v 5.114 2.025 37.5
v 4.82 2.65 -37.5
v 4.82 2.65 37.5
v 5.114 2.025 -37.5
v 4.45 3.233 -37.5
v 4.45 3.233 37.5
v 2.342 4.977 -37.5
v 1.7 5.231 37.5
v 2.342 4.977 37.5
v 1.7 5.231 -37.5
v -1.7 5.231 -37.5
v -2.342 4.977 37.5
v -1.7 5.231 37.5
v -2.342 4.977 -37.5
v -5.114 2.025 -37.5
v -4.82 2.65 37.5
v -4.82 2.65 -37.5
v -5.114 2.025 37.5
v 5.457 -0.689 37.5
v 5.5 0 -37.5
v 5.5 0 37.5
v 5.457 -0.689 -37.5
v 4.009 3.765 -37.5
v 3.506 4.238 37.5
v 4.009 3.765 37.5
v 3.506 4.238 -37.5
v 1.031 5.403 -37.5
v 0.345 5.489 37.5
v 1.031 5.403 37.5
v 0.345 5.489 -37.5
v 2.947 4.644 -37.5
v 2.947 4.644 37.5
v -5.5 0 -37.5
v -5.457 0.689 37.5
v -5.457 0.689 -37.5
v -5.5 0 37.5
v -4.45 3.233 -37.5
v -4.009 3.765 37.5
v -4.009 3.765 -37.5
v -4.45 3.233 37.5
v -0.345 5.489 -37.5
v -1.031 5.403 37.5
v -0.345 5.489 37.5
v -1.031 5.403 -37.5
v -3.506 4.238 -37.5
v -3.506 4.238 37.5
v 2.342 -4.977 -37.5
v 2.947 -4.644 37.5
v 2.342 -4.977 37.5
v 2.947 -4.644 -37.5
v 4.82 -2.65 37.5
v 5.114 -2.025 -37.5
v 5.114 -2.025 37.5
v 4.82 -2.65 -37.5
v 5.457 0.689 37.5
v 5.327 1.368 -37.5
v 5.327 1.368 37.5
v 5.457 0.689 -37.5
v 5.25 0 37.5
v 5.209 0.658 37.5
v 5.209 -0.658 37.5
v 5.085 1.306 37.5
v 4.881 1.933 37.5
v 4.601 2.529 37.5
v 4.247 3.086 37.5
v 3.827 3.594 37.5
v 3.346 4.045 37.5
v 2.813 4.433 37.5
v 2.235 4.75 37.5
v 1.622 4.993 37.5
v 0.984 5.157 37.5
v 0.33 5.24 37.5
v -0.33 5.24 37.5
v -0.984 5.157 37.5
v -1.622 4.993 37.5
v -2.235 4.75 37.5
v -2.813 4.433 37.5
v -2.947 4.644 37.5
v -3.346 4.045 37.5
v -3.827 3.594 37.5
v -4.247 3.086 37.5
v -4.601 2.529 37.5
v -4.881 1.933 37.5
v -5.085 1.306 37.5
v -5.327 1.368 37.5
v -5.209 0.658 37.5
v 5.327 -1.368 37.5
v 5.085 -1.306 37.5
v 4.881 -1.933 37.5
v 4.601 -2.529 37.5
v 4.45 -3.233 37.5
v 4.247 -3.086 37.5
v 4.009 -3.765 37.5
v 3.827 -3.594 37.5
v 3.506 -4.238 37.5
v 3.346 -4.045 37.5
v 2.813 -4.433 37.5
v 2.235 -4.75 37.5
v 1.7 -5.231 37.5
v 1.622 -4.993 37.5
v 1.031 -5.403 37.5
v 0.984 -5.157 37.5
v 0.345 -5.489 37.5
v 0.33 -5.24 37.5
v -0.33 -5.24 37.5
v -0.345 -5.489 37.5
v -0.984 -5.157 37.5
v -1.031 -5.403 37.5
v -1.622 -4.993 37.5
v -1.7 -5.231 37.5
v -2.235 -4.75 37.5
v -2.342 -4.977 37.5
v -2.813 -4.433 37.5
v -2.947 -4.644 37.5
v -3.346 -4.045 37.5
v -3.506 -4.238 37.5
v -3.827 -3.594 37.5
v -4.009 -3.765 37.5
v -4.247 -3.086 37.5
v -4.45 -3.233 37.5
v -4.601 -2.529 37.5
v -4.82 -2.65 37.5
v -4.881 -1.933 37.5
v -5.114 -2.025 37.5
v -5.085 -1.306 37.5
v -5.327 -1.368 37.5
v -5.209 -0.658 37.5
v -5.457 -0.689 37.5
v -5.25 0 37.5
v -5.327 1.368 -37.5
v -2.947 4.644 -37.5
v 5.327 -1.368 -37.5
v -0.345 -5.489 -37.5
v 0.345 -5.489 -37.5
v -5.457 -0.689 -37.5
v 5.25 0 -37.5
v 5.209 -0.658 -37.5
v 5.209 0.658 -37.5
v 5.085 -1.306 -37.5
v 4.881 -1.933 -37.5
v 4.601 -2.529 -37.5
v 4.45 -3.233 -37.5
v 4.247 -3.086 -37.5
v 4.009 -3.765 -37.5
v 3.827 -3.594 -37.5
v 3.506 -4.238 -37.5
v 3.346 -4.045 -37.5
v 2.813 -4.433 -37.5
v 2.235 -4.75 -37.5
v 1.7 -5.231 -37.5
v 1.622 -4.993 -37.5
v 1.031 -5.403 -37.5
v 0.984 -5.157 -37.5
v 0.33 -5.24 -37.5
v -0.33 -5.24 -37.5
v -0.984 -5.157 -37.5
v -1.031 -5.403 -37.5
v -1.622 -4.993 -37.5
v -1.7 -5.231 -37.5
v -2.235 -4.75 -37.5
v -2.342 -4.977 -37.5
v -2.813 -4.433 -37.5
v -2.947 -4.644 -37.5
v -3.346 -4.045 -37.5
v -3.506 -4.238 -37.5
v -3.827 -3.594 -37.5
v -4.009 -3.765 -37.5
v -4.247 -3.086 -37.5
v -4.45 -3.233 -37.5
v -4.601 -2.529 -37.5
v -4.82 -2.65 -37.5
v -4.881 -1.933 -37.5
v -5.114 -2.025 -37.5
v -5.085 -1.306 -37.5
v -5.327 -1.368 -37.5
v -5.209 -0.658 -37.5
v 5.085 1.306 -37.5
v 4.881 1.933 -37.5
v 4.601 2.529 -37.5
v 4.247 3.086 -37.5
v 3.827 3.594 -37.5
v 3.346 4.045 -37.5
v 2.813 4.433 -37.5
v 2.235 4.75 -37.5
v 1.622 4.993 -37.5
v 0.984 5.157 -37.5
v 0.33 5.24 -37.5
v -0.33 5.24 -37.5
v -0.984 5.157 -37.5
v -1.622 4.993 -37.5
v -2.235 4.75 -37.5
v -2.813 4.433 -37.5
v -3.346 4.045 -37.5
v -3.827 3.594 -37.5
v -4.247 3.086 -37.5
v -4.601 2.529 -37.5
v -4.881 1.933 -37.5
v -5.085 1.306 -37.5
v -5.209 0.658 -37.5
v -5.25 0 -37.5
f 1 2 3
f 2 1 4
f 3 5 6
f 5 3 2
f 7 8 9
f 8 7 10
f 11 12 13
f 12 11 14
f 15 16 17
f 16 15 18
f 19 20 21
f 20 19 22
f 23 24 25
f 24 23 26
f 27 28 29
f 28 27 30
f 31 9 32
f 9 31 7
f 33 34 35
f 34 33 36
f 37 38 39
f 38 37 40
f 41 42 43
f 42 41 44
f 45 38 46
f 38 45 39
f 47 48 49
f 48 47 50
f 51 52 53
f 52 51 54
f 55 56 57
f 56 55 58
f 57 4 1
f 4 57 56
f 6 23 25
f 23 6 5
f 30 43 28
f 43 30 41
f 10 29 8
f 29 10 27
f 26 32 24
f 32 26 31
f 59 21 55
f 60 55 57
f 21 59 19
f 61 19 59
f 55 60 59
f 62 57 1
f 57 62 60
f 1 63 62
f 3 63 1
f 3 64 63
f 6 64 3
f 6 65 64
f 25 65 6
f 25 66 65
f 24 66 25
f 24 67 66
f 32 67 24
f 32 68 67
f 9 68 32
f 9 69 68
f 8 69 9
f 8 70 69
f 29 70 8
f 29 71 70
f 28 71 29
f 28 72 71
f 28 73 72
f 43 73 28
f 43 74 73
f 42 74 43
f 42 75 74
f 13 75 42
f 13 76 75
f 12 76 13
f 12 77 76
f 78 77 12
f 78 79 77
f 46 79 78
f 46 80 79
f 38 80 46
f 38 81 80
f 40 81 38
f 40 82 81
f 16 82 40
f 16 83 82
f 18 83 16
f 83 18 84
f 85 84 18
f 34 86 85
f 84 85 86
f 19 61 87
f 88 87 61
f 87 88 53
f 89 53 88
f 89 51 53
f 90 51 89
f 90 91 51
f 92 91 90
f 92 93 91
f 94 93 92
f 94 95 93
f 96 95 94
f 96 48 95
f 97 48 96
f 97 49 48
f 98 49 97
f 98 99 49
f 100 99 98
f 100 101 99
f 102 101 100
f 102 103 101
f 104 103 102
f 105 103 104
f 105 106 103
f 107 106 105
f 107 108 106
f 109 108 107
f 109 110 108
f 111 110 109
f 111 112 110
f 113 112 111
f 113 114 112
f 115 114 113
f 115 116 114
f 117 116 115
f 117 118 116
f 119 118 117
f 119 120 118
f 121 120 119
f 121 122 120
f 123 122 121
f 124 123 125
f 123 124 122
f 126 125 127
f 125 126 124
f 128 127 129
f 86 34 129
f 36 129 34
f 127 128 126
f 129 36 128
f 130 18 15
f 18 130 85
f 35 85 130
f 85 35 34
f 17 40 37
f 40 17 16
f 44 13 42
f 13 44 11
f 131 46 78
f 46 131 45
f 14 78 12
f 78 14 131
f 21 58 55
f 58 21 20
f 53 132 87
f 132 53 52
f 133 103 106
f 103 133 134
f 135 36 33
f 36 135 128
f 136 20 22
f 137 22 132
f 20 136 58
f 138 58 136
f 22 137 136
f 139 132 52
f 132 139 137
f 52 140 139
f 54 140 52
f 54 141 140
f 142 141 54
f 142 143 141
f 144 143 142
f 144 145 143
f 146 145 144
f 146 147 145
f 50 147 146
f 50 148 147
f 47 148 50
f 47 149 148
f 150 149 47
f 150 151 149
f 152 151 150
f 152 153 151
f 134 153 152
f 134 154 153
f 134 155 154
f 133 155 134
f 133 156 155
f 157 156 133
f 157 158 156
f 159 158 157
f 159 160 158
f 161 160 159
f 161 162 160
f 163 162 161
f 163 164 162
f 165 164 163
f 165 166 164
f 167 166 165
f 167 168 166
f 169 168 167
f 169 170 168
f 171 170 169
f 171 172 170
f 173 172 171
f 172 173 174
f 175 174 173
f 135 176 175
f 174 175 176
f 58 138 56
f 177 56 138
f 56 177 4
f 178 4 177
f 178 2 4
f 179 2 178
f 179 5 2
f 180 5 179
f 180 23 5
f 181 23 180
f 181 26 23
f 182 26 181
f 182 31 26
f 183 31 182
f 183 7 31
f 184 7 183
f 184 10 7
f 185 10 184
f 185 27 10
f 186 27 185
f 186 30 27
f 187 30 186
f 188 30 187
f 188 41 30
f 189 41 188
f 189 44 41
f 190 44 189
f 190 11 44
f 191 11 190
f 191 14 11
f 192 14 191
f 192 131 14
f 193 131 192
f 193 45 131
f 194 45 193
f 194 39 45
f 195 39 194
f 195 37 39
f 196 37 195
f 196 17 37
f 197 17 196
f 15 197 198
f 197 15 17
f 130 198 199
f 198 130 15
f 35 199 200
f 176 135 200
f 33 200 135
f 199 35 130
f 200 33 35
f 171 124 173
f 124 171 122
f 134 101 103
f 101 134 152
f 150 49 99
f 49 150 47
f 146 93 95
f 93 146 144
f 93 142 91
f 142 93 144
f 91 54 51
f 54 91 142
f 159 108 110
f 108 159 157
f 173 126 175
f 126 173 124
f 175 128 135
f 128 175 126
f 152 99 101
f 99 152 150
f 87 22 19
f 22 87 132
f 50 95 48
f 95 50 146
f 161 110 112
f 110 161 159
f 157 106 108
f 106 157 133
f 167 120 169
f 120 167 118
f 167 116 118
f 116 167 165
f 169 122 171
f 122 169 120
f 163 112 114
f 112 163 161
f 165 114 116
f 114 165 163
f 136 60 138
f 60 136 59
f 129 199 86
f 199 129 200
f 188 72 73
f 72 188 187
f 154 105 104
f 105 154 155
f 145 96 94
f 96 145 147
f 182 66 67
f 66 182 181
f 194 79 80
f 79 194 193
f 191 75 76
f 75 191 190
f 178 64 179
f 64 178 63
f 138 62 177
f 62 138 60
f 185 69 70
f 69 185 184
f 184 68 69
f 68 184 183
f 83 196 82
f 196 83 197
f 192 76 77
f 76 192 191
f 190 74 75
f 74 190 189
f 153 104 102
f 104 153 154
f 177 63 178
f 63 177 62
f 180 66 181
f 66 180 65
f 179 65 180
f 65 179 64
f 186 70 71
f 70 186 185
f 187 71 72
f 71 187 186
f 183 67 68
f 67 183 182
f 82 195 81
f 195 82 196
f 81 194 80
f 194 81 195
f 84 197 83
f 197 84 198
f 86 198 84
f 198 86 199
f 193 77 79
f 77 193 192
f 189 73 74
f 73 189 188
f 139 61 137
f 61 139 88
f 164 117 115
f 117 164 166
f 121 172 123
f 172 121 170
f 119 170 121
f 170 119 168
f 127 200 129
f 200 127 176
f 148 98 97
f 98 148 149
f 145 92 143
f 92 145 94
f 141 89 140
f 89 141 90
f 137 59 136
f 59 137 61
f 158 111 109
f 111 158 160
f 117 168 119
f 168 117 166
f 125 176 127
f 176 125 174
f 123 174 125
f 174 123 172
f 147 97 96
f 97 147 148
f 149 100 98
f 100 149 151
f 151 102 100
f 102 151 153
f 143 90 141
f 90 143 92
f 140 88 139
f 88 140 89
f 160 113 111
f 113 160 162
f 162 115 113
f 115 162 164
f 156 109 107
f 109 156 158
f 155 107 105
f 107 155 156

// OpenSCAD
$fn = 50;


difference() {
	union() {
		translate(v = [0, 0, -37.5000000000]) {
			cylinder(h = 75, r = 5.5000000000);
		}
	}
	union() {
		translate(v = [0, 0, -100.0000000000]) {
			cylinder(h = 200, r = 5.2500000000);
		}
	}
}
